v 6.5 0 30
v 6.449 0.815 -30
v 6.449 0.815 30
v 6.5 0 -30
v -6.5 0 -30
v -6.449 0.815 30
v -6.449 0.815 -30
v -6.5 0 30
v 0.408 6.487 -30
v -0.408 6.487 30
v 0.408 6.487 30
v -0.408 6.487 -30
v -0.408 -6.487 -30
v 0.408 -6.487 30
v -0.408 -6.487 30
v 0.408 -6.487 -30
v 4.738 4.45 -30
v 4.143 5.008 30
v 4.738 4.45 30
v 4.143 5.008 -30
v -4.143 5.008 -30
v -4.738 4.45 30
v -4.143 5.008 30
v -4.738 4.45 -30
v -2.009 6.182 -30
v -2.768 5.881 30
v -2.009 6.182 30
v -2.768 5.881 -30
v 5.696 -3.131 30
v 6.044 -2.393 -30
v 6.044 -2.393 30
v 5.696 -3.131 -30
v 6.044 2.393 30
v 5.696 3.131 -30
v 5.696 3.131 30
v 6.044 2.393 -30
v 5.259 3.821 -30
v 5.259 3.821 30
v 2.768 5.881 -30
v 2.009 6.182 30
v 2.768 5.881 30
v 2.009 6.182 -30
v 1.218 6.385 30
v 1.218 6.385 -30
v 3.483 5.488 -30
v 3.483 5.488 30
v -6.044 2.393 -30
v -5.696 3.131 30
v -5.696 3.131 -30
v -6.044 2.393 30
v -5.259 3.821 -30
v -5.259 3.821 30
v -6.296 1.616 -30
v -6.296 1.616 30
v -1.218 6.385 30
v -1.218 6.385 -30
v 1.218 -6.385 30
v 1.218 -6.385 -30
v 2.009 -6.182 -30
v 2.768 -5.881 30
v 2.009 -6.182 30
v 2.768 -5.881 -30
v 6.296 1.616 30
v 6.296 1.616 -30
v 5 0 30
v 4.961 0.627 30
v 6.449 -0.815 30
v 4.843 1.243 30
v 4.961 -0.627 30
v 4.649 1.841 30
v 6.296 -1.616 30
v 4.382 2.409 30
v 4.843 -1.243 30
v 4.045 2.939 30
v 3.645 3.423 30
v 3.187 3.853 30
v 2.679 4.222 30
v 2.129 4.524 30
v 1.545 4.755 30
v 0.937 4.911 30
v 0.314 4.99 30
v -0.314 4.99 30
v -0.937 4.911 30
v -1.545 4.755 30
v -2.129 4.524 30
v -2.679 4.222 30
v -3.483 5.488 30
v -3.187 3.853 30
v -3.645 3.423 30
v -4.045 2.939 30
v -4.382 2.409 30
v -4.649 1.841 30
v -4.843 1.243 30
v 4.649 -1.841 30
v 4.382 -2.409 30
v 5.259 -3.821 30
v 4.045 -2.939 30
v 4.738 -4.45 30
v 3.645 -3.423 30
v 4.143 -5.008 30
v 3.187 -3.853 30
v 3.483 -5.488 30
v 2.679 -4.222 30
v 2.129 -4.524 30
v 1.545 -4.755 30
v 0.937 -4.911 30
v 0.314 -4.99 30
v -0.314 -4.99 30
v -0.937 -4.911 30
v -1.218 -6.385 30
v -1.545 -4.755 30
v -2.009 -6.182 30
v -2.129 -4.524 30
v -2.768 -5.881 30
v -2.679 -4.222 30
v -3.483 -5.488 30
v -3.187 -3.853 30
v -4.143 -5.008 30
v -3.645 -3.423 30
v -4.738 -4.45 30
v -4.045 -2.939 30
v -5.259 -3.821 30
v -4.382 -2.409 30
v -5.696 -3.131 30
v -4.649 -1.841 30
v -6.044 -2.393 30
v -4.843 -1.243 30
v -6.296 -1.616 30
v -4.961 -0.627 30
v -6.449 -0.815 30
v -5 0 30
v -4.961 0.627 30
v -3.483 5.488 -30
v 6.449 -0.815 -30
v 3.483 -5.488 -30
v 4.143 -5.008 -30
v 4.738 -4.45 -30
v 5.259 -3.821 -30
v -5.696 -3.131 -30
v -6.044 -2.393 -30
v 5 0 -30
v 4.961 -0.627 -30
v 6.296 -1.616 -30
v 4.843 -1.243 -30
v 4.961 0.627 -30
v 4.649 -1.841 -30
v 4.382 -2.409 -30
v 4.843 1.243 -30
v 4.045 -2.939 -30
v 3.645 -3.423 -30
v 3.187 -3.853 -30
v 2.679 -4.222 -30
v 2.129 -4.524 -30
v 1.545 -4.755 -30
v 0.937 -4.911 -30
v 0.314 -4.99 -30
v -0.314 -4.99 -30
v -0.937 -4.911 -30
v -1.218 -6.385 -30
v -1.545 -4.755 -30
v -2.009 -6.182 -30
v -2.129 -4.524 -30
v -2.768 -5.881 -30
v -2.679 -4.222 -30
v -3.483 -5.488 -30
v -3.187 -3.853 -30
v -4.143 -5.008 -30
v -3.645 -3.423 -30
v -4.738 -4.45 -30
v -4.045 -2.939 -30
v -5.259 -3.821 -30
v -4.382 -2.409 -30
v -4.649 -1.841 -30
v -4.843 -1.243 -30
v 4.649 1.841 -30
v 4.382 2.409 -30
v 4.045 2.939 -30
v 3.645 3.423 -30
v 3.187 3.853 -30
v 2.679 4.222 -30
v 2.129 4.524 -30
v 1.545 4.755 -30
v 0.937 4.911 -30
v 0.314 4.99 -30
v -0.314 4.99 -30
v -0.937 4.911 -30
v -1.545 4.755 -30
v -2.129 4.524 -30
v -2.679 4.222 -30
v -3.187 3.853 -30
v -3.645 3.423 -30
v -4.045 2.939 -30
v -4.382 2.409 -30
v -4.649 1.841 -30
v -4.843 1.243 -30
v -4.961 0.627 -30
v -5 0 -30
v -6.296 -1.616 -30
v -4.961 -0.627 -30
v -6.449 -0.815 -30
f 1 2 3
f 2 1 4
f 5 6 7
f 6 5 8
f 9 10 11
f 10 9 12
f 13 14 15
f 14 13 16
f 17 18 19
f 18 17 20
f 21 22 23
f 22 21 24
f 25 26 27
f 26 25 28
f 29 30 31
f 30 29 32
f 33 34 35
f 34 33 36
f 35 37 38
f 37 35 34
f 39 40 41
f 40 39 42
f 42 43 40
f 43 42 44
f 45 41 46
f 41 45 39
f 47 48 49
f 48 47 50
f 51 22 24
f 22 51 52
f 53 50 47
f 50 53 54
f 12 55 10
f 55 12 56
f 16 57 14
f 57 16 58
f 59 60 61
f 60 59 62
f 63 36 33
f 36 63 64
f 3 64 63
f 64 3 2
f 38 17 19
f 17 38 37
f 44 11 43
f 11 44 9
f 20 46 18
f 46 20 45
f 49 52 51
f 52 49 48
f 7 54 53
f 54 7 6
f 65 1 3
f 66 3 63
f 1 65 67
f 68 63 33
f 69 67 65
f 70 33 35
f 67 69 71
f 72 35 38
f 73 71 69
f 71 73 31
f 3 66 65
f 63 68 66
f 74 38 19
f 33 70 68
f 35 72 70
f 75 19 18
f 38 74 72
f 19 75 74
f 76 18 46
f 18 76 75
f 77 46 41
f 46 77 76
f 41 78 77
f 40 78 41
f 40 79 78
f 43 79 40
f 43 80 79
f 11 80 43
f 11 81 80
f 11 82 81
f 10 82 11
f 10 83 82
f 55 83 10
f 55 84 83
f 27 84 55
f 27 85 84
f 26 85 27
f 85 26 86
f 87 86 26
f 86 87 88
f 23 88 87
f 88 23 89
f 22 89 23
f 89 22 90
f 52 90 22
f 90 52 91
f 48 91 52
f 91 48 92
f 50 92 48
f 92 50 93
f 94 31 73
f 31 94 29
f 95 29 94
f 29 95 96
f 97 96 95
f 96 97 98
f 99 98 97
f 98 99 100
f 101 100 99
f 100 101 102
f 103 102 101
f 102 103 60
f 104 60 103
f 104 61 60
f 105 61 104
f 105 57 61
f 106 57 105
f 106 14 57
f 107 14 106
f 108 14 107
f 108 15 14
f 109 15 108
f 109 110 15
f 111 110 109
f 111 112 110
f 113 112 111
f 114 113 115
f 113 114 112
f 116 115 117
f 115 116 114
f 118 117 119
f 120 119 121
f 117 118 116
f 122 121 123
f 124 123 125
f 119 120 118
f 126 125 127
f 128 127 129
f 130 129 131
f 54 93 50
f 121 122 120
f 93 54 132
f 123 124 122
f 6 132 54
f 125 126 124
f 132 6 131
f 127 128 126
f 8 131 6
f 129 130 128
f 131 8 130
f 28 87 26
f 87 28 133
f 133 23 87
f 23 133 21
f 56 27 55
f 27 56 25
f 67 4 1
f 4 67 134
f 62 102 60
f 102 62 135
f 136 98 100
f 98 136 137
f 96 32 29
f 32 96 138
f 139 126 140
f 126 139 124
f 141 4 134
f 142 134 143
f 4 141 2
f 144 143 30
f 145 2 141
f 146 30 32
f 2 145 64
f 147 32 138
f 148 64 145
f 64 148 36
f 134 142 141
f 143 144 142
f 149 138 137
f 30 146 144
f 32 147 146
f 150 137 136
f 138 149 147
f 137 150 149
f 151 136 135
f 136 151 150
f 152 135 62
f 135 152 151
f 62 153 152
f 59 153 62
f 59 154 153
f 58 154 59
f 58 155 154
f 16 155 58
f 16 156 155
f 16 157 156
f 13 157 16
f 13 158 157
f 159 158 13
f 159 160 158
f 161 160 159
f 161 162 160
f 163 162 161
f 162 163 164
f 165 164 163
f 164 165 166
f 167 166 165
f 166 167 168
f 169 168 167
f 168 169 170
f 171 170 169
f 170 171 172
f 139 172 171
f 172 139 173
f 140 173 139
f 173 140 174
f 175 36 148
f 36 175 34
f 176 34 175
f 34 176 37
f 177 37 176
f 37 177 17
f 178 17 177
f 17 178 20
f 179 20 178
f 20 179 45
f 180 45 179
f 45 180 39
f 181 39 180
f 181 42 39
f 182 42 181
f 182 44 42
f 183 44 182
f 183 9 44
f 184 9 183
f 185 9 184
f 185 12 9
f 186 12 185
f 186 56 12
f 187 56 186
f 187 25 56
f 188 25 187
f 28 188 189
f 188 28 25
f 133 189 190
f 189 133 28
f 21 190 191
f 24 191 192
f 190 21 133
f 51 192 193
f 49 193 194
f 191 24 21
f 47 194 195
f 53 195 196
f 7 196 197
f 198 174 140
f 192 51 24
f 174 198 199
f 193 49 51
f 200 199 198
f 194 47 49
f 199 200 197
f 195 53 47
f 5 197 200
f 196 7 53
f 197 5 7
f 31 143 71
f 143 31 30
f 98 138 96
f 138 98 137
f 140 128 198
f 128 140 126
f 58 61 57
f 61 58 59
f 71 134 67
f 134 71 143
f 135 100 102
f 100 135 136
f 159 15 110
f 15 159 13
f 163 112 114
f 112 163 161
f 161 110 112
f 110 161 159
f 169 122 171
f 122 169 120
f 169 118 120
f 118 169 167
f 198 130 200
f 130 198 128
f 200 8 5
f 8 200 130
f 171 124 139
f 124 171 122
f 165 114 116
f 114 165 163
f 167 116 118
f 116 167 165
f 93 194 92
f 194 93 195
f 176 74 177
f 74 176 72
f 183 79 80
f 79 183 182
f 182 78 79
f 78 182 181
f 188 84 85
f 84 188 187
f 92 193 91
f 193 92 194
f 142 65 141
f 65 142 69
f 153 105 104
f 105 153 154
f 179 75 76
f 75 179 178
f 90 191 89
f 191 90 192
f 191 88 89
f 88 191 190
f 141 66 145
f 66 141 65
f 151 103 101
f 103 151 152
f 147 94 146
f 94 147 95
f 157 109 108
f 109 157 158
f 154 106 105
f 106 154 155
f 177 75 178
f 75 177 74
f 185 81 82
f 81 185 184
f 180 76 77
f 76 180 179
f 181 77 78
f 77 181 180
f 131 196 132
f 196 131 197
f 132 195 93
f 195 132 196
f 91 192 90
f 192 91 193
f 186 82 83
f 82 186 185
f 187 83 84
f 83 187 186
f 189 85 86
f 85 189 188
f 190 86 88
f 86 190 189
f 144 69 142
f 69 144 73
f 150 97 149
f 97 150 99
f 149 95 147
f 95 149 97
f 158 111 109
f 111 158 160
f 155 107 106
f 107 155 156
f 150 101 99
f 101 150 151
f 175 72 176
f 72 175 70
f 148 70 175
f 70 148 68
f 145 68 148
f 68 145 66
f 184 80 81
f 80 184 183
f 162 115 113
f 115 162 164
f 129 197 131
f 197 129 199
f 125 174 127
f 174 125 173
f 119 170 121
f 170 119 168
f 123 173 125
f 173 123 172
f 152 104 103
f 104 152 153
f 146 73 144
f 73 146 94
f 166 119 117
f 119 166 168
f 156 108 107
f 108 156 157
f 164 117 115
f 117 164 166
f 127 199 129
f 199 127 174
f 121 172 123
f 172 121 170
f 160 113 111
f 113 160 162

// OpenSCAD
$fn = 50;


difference() {
	union() {
		translate(v = [0, 0, -30.0000000000]) {
			cylinder(h = 60, r = 6.5000000000);
		}
	}
	union() {
		translate(v = [0, 0, -100.0000000000]) {
			cylinder(h = 200, r = 5);
		}
	}
}
